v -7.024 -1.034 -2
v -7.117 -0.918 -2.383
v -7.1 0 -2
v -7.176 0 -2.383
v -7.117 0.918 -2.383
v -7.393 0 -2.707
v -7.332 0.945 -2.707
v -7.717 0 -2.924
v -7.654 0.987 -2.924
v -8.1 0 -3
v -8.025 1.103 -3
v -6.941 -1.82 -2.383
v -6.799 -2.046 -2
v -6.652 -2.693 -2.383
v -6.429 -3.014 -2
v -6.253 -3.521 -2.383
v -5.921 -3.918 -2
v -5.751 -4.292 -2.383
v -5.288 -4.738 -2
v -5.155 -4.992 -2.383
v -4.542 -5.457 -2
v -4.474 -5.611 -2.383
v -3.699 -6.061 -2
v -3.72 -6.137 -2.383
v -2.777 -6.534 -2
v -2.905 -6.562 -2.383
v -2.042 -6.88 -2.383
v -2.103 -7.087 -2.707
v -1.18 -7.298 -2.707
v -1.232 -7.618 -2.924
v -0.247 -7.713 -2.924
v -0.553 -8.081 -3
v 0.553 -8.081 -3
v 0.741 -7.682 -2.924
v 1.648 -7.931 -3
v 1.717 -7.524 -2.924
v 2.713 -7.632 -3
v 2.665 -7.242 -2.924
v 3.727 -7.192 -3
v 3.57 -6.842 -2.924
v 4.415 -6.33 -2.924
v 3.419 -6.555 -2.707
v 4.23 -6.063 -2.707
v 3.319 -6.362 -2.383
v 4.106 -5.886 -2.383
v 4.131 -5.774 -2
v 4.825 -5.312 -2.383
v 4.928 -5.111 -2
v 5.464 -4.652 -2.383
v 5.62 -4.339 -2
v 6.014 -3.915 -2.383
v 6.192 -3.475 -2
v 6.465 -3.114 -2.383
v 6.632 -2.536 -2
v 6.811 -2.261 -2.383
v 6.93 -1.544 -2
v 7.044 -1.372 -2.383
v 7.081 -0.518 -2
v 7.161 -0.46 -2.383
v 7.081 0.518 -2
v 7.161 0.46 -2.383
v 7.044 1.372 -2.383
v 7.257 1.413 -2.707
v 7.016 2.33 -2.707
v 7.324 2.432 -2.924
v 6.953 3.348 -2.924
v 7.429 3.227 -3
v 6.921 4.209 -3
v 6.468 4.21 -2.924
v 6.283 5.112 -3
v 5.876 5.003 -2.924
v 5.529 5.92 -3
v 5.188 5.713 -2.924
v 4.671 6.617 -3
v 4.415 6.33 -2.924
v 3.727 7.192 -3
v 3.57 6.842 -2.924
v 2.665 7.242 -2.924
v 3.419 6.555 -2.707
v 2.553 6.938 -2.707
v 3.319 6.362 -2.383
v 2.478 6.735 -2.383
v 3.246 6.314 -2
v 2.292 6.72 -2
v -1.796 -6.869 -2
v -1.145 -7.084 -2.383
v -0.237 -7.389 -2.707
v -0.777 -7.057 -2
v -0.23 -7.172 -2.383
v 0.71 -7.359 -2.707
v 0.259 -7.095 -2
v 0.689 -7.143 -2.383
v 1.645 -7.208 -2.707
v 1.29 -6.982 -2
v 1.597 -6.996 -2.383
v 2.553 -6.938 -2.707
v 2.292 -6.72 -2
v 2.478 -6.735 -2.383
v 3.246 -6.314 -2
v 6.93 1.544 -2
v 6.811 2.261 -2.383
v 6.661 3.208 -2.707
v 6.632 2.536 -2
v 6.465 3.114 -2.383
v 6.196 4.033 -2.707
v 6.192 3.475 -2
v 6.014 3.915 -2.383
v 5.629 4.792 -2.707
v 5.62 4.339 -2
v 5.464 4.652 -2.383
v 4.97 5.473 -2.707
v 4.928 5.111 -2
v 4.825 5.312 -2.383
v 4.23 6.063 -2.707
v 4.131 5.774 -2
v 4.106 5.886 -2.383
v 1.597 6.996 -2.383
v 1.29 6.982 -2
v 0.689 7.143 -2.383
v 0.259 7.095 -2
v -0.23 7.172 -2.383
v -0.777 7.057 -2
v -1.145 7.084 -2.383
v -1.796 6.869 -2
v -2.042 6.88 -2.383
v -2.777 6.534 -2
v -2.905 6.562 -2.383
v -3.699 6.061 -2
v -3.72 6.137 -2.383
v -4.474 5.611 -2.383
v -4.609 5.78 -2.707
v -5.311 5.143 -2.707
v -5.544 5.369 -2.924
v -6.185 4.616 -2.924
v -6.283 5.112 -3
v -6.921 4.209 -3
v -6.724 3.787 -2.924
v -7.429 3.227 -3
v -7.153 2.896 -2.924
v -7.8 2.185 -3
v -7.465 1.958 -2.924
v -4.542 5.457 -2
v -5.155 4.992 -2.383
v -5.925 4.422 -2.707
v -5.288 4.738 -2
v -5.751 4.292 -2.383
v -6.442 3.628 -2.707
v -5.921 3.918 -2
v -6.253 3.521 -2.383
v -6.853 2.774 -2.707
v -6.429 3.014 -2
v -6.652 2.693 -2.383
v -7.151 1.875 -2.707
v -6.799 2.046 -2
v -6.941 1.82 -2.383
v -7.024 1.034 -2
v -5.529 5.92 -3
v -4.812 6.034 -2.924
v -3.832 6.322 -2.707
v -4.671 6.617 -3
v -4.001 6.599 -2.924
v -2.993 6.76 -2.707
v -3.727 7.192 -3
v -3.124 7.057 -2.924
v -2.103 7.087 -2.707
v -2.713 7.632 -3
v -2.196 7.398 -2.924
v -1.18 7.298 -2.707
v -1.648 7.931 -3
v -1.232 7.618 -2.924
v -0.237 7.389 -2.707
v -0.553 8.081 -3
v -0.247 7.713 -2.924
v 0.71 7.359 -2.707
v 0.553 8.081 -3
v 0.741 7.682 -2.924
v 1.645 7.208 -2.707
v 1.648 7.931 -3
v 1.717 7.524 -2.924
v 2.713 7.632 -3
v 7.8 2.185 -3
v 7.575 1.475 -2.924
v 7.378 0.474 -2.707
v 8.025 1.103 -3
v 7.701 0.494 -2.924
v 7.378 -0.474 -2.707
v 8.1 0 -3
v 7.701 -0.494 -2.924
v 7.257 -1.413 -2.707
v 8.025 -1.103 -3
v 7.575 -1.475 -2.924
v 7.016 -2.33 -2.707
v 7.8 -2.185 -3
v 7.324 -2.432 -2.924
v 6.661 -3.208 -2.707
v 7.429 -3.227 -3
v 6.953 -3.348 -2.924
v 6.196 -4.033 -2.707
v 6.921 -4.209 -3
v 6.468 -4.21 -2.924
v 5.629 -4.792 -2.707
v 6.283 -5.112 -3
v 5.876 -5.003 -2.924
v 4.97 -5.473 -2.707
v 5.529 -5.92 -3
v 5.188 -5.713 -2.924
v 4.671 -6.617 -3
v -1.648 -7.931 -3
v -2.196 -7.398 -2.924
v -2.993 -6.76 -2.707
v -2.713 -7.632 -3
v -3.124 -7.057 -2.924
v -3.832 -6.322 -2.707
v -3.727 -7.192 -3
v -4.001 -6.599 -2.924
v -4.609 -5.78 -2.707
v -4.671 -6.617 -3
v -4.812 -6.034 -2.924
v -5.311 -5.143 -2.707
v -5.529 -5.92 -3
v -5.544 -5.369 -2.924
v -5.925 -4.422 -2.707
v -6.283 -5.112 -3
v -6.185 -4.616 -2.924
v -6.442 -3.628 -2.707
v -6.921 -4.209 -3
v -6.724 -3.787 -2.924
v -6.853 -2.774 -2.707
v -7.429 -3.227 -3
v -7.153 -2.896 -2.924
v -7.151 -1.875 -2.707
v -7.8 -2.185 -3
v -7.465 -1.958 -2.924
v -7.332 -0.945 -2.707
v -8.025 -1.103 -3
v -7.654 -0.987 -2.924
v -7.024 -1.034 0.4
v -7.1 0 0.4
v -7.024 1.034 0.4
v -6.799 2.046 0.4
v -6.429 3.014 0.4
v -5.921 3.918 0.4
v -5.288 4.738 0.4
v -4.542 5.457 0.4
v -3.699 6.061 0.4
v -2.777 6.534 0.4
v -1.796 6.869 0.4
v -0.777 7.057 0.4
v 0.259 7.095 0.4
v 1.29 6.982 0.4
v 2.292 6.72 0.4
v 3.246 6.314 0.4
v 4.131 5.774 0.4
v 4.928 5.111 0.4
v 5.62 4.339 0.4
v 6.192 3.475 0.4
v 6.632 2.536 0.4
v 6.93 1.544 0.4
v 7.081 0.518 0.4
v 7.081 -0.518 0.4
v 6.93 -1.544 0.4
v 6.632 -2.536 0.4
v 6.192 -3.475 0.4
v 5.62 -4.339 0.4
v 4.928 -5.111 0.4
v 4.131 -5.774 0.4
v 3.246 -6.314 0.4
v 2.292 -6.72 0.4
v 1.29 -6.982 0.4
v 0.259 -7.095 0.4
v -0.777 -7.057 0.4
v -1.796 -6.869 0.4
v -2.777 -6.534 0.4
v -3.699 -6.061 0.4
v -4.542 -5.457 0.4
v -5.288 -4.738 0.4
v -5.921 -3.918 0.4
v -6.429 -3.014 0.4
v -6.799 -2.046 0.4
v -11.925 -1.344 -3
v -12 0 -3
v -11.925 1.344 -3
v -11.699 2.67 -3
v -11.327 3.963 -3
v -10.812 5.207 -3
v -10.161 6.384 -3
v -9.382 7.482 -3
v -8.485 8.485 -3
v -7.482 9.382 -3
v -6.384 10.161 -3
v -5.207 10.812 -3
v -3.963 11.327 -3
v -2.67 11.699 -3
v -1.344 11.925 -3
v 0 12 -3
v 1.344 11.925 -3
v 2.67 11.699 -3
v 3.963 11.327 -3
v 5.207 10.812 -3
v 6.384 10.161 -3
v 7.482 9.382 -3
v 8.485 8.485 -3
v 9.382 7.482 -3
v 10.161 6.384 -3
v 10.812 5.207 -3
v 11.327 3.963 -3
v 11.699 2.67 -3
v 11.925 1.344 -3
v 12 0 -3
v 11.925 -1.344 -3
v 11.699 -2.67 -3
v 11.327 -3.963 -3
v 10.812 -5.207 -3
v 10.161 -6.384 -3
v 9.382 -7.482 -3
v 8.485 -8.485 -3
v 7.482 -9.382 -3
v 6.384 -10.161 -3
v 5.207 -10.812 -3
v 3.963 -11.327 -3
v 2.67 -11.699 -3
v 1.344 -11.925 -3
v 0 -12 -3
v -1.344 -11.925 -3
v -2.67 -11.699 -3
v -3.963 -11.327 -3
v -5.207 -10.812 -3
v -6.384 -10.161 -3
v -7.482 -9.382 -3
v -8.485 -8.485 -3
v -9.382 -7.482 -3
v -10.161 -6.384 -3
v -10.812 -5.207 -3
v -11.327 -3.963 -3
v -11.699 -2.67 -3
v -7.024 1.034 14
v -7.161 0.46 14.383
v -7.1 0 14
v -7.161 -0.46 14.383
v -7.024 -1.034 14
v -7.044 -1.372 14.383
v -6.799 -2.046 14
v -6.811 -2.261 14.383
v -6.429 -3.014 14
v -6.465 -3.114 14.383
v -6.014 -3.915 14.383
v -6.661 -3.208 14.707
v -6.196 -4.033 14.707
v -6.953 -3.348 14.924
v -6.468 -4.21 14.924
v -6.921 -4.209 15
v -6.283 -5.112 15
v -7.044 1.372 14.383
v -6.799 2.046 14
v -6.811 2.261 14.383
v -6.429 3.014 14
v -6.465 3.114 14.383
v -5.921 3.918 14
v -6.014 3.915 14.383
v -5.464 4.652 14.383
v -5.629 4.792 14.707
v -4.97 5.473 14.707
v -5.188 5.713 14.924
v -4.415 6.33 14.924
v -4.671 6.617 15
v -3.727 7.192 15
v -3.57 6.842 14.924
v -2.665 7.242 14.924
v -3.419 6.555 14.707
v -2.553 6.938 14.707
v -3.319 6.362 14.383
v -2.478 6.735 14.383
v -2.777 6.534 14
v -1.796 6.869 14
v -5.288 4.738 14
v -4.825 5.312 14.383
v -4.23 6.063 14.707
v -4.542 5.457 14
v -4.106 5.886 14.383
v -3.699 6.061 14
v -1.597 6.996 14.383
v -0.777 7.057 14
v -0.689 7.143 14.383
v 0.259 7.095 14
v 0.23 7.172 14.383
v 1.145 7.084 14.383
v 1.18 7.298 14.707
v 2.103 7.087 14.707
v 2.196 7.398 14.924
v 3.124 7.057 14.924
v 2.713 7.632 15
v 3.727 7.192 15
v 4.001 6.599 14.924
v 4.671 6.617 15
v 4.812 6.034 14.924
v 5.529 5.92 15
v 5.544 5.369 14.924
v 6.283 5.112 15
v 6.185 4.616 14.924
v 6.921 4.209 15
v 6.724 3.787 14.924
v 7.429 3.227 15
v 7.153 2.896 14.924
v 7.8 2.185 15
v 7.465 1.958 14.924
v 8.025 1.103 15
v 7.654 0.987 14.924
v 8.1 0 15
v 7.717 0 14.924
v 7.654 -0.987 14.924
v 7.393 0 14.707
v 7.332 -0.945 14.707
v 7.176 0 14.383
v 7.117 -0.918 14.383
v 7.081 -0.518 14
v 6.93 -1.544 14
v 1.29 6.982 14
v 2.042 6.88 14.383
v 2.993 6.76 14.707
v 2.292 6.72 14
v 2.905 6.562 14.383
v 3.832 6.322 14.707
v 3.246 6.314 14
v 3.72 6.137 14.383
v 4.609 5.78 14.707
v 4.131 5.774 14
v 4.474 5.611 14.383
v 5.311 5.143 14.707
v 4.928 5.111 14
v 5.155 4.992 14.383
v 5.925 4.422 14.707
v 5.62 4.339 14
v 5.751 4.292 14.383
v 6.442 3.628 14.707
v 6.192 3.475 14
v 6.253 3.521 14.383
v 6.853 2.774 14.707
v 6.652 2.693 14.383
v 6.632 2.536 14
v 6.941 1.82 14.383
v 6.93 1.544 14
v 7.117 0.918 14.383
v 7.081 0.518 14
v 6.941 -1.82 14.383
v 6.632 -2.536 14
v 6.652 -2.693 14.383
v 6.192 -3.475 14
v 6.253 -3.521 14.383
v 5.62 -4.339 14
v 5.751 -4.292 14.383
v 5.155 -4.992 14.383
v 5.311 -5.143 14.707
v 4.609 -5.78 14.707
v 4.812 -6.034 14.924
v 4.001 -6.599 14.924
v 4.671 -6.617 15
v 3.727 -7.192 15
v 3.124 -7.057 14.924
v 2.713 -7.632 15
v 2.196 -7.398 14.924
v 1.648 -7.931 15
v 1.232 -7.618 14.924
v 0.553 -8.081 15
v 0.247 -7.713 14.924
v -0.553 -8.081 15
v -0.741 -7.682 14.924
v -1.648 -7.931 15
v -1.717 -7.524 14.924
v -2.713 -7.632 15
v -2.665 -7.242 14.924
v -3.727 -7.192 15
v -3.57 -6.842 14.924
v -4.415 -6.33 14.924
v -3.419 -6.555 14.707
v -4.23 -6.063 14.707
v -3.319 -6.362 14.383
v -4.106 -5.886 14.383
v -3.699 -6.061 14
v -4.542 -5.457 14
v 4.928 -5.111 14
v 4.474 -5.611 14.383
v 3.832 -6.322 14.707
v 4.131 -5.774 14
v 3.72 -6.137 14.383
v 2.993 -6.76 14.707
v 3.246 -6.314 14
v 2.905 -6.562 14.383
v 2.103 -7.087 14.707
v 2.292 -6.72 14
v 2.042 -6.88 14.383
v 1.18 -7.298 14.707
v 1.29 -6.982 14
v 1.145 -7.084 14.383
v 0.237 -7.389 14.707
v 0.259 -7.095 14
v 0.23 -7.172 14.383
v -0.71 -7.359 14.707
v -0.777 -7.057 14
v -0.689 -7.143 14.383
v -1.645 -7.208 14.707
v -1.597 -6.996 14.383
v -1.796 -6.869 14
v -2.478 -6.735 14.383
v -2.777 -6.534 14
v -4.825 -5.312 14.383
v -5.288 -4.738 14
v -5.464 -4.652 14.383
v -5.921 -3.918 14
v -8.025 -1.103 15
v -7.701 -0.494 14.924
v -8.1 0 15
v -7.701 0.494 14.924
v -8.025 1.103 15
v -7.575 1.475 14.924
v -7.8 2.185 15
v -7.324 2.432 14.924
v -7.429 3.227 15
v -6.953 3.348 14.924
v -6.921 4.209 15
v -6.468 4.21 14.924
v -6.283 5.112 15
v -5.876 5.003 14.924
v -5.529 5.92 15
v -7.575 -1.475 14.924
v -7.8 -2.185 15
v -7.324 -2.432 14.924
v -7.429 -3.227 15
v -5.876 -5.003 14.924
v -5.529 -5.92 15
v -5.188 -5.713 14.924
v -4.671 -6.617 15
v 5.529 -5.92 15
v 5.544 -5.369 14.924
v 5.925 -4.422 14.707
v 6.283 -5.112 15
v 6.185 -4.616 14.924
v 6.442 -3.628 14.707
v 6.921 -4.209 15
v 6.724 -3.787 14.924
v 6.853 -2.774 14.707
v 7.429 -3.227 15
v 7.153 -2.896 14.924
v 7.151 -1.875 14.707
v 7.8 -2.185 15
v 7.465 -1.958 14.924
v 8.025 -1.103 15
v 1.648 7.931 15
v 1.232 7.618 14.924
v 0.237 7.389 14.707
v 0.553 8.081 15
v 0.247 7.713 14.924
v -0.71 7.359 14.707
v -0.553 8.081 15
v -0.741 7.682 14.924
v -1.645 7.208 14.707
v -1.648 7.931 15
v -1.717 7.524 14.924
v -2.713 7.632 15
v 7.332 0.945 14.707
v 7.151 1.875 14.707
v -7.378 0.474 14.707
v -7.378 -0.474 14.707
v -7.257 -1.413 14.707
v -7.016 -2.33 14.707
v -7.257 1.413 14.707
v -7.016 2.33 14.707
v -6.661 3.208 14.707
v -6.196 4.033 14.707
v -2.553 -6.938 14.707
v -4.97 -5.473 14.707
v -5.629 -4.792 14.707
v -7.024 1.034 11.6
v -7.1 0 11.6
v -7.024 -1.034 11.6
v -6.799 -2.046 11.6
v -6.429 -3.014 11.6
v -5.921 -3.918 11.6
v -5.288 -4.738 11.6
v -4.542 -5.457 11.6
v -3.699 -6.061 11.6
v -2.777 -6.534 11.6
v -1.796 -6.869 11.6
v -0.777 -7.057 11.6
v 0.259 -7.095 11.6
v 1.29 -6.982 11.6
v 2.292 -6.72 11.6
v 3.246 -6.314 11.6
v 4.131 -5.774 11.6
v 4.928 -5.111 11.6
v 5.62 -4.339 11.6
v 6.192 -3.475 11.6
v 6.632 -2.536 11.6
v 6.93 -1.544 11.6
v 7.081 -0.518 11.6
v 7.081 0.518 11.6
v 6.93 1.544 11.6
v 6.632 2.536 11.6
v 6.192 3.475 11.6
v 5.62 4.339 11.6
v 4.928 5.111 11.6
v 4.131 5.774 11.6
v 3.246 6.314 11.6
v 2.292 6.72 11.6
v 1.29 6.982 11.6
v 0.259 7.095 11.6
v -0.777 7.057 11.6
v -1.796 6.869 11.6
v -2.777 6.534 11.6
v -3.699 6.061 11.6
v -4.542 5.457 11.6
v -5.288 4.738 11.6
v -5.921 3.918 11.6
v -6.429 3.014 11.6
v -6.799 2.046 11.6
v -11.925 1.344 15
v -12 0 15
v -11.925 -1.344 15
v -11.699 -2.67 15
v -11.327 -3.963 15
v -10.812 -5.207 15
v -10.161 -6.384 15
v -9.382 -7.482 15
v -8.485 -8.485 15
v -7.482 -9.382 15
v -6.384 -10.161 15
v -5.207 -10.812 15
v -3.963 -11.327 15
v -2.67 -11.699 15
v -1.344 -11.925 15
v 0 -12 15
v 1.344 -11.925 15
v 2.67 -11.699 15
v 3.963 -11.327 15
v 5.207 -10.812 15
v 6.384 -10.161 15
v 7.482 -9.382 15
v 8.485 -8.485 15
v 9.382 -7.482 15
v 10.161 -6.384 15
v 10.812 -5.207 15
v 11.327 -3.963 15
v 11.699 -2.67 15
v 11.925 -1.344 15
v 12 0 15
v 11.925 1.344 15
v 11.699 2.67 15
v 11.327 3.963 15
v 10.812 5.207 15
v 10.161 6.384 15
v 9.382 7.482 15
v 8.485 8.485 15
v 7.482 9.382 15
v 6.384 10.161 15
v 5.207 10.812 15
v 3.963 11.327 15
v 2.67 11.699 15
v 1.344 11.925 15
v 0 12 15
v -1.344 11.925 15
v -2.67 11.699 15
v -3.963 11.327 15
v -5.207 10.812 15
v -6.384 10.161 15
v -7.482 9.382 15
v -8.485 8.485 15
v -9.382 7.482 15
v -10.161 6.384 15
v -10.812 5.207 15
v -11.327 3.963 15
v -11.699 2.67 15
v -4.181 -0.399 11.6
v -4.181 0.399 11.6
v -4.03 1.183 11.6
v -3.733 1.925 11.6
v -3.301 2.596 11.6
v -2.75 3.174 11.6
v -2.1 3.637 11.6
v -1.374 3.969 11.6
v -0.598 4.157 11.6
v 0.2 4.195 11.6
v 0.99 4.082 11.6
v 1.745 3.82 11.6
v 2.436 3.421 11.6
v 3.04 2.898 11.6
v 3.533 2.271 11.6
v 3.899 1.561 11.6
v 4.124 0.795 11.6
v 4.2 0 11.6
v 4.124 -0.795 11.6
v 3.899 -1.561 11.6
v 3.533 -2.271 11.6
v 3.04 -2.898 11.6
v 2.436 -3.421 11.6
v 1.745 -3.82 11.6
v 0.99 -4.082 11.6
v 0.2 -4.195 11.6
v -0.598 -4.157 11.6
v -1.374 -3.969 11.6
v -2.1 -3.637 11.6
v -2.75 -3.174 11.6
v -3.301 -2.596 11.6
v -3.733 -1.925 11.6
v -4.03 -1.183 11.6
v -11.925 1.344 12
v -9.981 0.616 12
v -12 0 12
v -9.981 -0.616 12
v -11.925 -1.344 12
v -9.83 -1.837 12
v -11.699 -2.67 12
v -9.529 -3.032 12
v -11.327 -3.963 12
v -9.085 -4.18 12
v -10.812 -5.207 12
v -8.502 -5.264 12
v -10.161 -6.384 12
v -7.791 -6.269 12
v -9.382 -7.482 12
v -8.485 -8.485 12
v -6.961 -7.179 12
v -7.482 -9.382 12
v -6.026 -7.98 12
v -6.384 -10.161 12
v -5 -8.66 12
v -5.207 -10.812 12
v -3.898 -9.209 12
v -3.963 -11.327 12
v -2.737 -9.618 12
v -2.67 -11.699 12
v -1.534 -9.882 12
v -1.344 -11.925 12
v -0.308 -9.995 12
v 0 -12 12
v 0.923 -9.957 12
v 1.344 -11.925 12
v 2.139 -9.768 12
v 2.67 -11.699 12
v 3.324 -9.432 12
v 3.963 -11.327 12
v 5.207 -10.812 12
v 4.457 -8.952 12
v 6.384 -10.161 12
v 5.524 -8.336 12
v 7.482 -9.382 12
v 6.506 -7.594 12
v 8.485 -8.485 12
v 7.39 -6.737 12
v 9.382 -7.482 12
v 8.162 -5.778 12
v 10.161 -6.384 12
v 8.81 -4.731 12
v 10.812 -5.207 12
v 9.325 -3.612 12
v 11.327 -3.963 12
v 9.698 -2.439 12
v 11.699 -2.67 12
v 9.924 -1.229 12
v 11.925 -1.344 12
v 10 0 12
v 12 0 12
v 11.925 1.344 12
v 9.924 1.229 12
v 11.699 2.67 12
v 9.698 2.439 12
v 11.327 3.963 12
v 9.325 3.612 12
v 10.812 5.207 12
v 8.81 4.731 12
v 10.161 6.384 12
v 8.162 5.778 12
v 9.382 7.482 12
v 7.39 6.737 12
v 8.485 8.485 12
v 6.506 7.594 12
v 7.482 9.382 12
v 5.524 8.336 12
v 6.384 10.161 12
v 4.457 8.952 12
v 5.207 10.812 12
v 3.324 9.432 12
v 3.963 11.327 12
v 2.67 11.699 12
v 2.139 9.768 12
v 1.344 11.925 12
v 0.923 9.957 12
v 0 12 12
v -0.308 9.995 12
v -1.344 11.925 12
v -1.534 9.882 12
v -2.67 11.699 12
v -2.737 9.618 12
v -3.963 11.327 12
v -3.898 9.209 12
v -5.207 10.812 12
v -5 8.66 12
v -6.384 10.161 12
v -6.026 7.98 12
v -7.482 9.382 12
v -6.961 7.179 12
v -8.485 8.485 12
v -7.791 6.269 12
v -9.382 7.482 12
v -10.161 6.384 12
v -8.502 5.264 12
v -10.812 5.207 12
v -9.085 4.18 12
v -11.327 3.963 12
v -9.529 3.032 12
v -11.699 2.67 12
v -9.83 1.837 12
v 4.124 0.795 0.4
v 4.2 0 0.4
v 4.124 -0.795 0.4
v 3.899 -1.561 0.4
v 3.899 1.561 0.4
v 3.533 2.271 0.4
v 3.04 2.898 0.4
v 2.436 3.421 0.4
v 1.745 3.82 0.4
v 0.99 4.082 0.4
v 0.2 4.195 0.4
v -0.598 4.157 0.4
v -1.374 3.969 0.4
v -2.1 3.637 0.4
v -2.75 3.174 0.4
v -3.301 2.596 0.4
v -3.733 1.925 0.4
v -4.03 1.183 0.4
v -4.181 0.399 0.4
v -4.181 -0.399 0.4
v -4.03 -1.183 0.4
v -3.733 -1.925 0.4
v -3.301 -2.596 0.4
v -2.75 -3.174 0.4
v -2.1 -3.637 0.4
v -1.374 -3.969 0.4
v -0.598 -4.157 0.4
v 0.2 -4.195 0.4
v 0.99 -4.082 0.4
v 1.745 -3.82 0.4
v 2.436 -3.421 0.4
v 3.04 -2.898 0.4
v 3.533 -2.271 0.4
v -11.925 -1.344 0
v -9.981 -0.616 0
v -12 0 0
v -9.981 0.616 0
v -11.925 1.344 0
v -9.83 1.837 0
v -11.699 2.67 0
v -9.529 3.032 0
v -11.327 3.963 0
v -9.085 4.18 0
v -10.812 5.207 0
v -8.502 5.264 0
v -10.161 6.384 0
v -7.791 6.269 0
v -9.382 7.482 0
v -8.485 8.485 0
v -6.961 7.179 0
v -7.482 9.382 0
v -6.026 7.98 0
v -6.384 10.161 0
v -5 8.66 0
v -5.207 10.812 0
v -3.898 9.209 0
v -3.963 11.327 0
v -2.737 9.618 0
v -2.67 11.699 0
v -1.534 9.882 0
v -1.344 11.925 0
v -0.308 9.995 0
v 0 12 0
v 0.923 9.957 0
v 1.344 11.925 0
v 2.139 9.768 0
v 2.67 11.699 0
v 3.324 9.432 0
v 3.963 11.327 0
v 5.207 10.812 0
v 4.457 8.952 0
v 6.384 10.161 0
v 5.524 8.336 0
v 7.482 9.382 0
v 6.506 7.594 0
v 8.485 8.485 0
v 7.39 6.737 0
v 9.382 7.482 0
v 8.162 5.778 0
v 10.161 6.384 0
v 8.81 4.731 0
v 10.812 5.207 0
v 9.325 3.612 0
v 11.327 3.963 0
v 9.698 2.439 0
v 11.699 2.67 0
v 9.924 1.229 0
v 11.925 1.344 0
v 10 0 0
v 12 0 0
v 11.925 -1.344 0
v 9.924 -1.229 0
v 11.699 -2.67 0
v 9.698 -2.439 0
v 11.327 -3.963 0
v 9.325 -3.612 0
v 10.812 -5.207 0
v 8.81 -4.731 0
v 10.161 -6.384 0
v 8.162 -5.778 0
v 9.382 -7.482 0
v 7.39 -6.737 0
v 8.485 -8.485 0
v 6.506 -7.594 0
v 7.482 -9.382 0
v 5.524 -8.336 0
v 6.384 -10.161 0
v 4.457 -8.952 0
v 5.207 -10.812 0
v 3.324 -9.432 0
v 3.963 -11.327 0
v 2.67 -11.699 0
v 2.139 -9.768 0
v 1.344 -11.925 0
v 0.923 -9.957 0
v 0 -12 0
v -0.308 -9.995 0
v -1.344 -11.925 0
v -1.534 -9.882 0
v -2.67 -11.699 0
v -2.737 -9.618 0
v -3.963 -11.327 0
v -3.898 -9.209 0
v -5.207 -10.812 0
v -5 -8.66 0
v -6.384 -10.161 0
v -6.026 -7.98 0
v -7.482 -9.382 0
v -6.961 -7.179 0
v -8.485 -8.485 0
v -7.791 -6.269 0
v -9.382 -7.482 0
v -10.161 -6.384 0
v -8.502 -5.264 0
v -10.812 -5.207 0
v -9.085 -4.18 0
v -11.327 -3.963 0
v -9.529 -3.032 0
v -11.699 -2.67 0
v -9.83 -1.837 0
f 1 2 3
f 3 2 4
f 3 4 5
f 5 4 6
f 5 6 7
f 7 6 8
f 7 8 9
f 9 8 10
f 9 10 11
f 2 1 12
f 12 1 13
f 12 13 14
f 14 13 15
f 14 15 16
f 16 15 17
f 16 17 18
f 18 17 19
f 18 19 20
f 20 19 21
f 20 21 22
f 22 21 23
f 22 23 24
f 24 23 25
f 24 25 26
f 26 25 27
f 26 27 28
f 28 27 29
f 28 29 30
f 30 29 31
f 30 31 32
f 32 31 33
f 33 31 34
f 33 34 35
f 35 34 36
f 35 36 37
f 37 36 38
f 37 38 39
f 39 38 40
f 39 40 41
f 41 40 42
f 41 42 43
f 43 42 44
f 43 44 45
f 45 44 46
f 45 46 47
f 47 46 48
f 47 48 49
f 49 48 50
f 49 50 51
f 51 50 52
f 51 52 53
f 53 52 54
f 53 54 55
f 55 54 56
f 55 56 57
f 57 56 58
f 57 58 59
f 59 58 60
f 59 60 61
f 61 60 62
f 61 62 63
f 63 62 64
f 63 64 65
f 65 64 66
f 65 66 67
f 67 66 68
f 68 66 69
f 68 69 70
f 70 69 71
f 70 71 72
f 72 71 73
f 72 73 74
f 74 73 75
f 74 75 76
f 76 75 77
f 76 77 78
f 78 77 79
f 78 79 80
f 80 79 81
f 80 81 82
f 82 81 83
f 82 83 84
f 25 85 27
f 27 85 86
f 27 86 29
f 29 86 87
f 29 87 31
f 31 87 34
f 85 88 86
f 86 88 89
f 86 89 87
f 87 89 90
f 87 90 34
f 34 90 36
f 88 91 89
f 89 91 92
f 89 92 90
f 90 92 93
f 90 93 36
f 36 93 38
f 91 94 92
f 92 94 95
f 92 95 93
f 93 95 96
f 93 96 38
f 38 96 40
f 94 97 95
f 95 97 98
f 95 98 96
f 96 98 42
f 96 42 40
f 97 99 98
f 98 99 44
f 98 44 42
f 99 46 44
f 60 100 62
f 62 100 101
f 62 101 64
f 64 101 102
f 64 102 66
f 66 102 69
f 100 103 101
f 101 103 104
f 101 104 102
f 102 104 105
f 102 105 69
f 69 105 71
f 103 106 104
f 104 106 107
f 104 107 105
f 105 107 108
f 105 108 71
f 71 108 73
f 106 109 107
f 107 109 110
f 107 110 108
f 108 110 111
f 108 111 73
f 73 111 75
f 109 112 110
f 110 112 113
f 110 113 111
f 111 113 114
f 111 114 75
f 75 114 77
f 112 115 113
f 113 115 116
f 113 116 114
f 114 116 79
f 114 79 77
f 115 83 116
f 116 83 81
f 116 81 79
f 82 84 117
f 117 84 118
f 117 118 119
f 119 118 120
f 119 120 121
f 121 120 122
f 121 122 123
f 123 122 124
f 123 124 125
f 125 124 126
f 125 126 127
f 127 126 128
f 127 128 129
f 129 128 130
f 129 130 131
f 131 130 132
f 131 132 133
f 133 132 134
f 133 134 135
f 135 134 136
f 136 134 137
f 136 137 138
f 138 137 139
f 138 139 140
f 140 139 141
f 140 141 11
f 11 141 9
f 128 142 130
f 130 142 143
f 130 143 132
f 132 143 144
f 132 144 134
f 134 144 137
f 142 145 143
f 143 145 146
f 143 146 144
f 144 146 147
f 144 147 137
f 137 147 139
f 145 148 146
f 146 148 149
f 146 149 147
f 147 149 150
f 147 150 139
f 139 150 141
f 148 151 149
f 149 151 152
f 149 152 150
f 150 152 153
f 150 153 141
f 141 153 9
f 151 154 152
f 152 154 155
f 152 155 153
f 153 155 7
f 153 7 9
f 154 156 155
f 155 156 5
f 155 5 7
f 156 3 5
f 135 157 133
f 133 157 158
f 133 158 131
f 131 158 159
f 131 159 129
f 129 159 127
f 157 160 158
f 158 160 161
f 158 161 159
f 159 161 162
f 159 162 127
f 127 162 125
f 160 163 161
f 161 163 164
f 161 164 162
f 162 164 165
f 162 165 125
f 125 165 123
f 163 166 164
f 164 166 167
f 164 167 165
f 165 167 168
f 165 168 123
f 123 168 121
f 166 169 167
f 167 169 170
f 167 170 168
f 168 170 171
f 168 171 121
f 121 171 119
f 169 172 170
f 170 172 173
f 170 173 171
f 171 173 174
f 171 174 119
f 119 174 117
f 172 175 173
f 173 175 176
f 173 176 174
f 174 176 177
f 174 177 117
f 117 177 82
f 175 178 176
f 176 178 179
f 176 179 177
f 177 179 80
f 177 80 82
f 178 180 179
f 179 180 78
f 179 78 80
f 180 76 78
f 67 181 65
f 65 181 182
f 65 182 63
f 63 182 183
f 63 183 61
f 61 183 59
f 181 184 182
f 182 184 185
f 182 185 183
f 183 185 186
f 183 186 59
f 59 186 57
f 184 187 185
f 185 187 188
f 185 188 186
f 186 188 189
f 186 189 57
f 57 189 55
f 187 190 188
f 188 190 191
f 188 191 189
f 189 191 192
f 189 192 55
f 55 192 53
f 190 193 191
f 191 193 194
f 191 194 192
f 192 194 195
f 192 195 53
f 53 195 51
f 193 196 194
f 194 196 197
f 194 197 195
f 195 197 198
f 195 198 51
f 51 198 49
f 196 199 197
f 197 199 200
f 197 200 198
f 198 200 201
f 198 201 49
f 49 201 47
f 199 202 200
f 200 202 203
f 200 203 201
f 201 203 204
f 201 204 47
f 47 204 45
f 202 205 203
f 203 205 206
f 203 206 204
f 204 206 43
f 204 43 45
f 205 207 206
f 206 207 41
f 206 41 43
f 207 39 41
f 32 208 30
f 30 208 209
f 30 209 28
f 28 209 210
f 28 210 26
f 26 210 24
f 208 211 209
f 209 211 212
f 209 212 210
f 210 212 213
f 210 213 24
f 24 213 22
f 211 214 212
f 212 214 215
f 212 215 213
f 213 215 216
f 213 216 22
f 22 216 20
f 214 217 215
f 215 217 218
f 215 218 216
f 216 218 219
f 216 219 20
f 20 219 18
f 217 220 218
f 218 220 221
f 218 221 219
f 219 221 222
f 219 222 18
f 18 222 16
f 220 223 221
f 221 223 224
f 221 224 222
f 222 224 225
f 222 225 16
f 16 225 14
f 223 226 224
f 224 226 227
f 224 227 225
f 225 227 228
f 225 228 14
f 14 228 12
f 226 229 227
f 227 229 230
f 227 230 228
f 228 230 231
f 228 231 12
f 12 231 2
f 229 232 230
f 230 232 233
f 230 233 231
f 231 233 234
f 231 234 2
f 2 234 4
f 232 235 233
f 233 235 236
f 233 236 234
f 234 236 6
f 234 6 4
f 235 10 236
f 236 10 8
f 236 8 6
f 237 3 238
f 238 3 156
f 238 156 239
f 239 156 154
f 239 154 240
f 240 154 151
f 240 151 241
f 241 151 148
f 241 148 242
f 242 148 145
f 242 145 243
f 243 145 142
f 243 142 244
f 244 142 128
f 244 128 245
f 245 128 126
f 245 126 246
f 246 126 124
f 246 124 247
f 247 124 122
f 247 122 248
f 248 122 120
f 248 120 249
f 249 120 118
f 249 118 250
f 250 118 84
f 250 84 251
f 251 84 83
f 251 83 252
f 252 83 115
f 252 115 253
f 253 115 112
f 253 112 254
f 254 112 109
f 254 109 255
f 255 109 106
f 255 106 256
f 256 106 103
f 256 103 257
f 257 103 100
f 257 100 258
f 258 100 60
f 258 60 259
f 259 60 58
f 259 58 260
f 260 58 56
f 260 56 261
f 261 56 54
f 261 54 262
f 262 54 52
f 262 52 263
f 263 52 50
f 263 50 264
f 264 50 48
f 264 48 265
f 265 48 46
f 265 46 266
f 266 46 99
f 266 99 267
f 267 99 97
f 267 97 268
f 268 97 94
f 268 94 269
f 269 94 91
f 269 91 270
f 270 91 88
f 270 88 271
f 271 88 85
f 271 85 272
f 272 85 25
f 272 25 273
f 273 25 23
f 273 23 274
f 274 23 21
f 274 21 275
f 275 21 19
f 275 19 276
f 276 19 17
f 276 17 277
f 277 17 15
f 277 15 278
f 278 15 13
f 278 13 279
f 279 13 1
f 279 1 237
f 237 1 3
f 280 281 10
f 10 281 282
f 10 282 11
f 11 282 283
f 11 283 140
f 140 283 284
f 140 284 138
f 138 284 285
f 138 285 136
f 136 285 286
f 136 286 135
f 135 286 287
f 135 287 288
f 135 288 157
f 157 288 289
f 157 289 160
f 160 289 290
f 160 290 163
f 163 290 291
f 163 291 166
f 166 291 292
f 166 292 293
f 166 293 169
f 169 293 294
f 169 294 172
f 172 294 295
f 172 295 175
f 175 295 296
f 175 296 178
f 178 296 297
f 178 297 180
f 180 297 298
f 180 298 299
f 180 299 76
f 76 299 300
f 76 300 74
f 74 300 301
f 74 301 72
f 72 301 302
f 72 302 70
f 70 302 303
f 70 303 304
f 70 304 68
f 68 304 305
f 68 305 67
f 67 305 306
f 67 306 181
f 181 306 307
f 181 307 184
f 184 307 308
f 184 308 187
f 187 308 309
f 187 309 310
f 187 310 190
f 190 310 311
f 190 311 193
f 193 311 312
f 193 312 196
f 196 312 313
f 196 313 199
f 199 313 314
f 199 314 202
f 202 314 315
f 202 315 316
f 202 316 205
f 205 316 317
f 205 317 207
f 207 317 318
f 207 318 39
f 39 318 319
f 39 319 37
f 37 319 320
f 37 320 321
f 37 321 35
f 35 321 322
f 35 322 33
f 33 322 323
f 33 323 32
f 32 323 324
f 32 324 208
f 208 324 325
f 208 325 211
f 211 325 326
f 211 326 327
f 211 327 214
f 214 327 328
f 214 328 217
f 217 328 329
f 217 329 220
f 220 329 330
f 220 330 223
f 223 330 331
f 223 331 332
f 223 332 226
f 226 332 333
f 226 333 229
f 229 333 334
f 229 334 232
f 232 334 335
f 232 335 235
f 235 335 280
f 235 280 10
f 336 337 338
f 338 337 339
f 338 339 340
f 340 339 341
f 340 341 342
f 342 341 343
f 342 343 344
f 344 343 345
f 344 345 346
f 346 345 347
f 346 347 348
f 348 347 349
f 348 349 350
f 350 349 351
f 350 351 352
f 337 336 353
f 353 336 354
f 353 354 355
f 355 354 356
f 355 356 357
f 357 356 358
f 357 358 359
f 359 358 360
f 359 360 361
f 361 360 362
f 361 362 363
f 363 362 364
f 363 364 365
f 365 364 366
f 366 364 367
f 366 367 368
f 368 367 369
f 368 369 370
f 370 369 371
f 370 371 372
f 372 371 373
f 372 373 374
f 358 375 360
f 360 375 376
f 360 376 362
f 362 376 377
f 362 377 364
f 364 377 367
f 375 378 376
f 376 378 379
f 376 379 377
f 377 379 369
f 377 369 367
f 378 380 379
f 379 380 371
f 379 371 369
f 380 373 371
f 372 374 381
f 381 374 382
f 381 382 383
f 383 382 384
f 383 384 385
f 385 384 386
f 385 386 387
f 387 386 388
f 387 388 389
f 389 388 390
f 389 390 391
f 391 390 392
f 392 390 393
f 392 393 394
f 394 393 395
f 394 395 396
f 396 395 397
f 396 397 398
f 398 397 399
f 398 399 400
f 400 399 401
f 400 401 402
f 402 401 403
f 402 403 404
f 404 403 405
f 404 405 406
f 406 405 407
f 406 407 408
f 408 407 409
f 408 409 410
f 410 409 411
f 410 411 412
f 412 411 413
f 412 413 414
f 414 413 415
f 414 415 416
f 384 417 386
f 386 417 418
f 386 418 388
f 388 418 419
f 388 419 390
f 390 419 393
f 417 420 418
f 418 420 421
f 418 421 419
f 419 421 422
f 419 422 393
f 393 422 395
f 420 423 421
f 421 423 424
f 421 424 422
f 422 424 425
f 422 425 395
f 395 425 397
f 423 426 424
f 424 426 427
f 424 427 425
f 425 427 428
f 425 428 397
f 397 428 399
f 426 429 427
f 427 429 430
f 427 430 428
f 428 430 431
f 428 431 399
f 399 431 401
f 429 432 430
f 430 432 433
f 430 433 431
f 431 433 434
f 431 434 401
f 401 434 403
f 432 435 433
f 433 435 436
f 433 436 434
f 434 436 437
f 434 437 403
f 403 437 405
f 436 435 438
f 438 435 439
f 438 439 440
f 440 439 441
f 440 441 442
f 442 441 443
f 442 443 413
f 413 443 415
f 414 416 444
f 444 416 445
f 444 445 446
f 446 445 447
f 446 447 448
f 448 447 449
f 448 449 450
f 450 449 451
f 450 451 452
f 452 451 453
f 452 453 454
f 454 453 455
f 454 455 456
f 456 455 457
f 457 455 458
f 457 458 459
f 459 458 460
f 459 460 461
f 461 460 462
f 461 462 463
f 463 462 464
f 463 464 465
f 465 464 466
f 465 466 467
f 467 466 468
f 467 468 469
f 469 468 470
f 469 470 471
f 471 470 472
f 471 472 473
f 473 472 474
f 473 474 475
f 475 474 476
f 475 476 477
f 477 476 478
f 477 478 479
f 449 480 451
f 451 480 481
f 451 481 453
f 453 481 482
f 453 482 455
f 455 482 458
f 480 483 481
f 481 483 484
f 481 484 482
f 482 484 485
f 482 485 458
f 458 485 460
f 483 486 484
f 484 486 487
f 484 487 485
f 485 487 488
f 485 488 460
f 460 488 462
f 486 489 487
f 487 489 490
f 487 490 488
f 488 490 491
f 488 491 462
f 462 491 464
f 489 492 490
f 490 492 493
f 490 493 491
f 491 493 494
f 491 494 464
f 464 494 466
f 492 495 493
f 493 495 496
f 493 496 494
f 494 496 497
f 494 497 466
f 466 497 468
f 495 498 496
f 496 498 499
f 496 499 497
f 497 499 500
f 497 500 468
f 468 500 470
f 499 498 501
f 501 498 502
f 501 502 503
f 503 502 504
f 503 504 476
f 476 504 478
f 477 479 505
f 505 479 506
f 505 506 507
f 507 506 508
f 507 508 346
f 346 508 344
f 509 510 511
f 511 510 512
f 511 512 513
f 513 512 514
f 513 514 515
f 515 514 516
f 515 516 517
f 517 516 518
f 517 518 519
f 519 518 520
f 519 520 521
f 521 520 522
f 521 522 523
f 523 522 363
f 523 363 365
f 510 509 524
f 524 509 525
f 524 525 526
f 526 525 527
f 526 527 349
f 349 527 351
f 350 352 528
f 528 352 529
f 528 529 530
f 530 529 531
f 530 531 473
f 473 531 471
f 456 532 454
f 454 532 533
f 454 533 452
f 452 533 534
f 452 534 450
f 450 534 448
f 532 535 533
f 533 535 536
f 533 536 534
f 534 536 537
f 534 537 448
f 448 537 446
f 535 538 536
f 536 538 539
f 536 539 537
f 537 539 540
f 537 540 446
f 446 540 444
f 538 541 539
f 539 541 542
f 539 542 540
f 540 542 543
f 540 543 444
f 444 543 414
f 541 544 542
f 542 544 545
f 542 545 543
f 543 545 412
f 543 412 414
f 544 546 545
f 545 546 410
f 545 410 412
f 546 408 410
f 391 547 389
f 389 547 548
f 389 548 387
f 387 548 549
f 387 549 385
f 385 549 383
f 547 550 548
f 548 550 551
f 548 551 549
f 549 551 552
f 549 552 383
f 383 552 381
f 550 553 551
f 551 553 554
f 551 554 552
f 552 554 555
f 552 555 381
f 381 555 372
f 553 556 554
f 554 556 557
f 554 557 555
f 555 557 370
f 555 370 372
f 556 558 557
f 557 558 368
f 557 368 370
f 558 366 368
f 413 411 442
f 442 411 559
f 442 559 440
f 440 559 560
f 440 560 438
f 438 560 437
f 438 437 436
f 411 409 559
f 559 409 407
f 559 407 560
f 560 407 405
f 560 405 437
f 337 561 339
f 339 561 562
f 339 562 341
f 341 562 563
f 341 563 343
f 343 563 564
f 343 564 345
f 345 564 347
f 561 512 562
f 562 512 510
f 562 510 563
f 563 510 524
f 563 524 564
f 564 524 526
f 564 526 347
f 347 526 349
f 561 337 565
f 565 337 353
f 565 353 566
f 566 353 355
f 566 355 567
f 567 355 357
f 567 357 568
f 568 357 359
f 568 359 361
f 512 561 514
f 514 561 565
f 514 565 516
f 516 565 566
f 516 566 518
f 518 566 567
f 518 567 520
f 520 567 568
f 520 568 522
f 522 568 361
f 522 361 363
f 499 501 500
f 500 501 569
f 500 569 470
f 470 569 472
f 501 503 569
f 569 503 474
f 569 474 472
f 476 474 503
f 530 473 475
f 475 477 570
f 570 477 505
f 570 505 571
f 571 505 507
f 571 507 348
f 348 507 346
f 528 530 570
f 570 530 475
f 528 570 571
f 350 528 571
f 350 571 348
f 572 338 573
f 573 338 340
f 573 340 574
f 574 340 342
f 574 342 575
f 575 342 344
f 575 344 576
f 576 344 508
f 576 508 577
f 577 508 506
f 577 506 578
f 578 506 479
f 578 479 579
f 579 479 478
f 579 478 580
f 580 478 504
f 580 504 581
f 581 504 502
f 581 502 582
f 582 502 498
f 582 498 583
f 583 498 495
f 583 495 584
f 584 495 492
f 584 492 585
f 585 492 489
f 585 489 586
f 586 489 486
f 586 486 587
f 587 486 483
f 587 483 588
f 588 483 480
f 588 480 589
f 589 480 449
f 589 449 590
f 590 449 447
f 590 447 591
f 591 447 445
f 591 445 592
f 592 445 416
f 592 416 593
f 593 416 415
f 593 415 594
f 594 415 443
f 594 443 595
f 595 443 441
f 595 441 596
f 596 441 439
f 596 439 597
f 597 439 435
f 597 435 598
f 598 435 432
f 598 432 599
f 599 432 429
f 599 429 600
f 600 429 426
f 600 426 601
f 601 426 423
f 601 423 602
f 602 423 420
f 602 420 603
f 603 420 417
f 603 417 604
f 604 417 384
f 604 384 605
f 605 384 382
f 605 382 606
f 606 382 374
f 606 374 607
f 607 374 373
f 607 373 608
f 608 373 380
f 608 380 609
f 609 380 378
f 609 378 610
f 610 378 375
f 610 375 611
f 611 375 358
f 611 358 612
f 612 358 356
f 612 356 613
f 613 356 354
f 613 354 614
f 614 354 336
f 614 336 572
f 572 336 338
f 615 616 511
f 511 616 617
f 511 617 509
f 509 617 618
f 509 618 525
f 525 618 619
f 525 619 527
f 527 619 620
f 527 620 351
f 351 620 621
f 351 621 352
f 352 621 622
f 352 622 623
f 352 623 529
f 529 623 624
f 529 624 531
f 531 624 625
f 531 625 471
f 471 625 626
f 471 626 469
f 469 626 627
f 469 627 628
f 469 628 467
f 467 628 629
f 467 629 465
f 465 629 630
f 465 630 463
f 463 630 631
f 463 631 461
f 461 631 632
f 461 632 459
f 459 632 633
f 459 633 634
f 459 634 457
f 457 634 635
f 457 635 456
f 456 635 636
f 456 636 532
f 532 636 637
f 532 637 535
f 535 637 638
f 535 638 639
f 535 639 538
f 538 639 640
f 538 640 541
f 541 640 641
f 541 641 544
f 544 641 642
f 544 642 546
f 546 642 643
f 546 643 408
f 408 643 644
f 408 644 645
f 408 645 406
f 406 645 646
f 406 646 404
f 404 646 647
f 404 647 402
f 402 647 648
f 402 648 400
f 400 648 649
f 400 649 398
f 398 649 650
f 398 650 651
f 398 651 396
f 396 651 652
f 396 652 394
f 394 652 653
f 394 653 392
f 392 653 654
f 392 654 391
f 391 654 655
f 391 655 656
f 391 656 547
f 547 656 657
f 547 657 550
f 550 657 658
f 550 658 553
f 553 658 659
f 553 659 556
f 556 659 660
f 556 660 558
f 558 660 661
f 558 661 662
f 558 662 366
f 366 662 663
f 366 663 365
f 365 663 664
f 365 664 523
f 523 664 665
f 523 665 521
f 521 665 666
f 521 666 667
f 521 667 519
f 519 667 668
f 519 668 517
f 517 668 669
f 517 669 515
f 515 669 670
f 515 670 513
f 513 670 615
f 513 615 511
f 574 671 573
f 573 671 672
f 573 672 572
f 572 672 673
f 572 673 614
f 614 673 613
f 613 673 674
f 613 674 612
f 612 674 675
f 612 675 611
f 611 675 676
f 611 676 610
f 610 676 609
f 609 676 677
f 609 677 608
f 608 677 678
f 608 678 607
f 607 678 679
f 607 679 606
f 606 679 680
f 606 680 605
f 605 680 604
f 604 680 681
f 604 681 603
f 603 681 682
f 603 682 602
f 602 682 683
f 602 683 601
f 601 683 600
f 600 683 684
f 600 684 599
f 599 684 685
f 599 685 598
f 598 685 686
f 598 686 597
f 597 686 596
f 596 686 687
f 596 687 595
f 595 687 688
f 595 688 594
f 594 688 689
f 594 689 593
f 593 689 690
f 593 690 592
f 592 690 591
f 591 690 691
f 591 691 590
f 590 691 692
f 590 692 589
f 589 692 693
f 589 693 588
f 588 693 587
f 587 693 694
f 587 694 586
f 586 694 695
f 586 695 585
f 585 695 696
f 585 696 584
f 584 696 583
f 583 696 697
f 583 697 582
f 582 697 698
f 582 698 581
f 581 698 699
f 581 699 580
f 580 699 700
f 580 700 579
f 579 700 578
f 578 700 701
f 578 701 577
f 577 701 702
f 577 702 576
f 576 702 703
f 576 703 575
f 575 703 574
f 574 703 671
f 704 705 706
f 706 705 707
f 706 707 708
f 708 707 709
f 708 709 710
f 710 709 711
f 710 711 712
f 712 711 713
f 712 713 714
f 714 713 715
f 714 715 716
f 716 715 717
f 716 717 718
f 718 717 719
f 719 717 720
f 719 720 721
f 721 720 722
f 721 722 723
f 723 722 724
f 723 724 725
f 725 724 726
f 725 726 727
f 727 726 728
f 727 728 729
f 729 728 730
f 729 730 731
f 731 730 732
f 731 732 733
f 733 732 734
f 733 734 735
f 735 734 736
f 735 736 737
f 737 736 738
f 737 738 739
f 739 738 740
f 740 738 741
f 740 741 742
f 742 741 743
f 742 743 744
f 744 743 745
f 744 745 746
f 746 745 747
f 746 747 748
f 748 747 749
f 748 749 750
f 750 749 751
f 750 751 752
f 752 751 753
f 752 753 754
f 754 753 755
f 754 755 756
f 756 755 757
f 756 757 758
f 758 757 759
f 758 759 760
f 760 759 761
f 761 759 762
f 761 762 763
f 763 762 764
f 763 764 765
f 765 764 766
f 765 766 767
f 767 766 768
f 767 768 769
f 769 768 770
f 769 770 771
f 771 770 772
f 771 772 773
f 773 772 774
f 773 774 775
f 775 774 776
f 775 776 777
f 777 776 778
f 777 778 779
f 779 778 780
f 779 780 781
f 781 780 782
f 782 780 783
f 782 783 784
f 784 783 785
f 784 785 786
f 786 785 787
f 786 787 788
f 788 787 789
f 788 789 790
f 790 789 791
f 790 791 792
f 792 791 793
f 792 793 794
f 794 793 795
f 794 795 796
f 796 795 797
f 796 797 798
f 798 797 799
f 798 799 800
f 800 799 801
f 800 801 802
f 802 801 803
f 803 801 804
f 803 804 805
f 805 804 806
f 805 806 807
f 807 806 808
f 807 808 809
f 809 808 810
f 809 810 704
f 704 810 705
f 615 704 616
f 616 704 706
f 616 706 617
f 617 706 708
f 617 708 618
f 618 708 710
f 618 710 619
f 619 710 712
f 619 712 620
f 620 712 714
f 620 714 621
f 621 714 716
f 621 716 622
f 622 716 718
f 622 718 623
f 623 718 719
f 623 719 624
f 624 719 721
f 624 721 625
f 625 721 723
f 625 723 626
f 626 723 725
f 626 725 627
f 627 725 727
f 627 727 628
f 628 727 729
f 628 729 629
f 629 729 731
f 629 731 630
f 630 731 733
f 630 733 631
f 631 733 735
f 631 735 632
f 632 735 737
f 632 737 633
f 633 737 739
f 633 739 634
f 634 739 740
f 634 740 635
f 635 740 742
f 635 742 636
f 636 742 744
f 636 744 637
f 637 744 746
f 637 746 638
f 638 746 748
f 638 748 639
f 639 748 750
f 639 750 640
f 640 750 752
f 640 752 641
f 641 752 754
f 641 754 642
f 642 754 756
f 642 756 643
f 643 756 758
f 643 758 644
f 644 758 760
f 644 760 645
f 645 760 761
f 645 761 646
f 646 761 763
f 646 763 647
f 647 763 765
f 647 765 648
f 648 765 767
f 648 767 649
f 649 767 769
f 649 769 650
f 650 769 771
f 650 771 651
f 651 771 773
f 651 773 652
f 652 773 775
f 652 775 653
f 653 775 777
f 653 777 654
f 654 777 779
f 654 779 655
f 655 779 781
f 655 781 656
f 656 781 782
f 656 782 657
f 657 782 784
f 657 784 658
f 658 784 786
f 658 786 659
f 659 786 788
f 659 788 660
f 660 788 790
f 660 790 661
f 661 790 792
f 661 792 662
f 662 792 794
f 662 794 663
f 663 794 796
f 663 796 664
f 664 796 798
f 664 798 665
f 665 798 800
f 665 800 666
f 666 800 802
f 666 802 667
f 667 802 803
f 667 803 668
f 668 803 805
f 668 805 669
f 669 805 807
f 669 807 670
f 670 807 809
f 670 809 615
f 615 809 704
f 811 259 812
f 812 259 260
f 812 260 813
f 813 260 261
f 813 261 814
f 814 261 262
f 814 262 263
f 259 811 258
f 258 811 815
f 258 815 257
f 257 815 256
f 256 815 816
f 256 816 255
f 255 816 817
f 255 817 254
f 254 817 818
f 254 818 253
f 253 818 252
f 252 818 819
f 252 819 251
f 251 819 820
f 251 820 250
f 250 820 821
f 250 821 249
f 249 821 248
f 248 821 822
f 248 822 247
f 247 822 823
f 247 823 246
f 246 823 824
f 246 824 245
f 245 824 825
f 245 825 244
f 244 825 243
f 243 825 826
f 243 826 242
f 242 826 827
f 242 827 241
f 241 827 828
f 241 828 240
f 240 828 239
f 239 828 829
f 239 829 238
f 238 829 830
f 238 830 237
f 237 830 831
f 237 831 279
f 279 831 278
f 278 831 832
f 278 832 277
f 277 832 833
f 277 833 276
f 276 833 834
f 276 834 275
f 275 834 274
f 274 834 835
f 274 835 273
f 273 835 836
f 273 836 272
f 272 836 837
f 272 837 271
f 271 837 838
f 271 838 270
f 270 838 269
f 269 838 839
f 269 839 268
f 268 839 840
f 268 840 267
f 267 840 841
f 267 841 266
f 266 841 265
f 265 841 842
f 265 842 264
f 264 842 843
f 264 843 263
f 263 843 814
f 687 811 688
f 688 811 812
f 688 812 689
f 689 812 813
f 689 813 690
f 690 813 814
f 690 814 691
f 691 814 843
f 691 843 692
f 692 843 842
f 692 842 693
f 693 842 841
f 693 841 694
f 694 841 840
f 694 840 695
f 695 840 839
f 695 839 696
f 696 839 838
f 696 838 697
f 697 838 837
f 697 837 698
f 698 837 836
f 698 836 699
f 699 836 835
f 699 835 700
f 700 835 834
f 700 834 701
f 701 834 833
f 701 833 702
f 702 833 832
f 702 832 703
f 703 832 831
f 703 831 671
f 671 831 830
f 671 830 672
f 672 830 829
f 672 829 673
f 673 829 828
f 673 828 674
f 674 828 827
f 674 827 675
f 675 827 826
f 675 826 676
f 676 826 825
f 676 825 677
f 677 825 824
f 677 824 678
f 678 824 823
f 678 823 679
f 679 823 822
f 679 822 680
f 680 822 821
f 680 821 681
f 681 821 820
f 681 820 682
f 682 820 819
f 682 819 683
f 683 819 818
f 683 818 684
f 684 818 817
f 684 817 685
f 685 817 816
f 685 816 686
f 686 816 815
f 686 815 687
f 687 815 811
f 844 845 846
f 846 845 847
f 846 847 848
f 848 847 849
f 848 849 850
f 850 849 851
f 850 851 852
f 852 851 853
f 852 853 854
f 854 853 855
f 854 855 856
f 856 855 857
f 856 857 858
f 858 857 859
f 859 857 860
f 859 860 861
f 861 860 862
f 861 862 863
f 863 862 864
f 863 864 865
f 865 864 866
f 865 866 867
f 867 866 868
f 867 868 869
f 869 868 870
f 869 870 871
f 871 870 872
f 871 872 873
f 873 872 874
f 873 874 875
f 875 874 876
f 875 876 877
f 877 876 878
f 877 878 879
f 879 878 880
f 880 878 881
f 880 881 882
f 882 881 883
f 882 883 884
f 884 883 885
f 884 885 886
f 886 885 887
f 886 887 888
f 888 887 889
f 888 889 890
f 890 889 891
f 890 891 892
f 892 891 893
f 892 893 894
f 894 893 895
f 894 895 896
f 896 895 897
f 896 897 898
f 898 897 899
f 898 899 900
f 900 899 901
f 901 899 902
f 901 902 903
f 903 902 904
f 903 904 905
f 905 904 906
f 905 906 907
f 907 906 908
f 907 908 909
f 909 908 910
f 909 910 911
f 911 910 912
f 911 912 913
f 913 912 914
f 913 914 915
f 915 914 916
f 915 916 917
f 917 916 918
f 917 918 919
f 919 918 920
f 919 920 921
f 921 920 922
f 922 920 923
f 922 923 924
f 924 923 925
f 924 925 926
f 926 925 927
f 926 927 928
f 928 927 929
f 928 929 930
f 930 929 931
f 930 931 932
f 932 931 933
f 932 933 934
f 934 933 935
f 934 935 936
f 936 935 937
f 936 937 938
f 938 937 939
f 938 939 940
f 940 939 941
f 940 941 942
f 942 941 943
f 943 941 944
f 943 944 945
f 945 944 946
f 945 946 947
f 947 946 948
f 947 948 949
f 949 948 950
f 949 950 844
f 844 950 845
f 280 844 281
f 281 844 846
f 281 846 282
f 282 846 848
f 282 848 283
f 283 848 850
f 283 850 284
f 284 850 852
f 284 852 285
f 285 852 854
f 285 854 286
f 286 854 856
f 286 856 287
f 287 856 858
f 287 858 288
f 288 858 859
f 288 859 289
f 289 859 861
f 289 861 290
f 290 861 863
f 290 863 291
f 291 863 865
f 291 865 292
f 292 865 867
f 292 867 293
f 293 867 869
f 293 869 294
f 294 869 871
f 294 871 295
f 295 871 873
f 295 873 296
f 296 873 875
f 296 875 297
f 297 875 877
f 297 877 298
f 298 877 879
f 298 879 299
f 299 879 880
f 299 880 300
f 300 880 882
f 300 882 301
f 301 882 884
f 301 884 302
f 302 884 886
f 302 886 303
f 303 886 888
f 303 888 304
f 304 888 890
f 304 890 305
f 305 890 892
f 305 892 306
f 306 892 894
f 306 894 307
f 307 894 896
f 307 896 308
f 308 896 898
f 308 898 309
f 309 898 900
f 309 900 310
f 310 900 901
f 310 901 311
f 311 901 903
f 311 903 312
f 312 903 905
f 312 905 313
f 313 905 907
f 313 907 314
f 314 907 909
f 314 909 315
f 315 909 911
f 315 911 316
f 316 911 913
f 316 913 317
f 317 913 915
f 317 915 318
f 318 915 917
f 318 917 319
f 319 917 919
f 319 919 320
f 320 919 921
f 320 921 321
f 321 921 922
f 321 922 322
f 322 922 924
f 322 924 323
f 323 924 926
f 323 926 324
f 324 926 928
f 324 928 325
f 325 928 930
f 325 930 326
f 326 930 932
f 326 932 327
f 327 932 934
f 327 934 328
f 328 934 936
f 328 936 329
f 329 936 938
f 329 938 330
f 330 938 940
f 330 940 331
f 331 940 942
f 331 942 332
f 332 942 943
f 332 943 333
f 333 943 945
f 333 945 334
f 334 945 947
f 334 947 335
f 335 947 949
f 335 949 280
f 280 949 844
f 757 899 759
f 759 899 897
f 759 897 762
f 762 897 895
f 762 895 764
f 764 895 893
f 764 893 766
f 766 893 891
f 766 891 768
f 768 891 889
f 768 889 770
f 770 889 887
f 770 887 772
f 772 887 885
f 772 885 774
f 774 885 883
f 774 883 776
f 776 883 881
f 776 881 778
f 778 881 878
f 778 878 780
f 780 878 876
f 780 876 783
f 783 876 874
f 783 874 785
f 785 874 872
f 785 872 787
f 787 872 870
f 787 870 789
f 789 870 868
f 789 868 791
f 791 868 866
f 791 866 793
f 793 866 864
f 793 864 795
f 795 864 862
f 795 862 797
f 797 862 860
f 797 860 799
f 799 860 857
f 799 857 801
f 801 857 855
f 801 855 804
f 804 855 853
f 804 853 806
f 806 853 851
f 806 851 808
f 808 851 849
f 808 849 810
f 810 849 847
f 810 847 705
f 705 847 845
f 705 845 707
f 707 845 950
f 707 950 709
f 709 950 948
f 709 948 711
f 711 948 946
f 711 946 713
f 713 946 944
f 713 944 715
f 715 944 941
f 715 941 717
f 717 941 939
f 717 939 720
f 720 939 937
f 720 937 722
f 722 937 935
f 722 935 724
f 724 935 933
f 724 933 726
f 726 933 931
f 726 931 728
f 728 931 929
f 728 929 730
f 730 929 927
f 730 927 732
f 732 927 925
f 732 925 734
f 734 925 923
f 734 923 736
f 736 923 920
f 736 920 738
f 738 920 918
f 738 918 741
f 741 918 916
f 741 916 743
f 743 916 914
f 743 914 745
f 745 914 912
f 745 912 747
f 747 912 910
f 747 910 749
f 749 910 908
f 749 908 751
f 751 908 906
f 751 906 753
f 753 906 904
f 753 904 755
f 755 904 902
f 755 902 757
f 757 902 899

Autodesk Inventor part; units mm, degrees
ref_plane "YZ Plane" through (0, 0, 0) normal (1, 0, 0) x (0, 1, 0)
ref_plane "XZ Plane" through (0, 0, 0) normal (0, 1, 0) x (-1, 0, 0)
ref_plane "XY Plane" through (0, 0, 0) normal (0, 0, 1) x (1, 0, 0)
sketch "スケッチ1" plane through (0, 0, 0) normal (0, 0, 1) x (1, 0, 0)
  circle A0 centre (0, 0) radius 10
  dimension "d0" = 20
extrude "押し出し1" add sketch "スケッチ1" along normal blind 6
sketch "スケッチ2" plane through (0, 0, 0) normal (0, 0, -1) x (-1, 0, 0)
  circle A0 centre (0, 0) radius 12
  circle A1 centre (0, 0) radius 10 projected
  dimension "d17" = 2
extrude "押し出し2" add sketch "スケッチ2" along normal blind 3 contours A0 | A1
sketch "スケッチ3" plane through (0, 0, -3) normal (0, 0, -1) x (-1, 0, 0)
  circle A0 centre (0, 0) radius 8
  dimension "d6" = 16
hole "穴1" at (0, 0, -3) direction (0, 0, 1) diameter 8.4 end through all
sketch "スケッチ4" plane through (0, 0, -3) normal (0, 0, -1) x (-1, 0, 0)
  circle A0 centre (0, 0) radius 7.1
  dimension "d14" = 14.2
extrude "押し出し3" cut sketch "スケッチ4" against normal blind 3.4
mirror "ミラー1" about plane through (0, 0, 6) normal (0, 0, 1) of "押し出し1", "押し出し2", "穴1", "押し出し3"
fillet "フィレット1" radius 1 2 edges at (7.1, 0, 15) (7.1, 0, -3)
properties part number "link1part5"
